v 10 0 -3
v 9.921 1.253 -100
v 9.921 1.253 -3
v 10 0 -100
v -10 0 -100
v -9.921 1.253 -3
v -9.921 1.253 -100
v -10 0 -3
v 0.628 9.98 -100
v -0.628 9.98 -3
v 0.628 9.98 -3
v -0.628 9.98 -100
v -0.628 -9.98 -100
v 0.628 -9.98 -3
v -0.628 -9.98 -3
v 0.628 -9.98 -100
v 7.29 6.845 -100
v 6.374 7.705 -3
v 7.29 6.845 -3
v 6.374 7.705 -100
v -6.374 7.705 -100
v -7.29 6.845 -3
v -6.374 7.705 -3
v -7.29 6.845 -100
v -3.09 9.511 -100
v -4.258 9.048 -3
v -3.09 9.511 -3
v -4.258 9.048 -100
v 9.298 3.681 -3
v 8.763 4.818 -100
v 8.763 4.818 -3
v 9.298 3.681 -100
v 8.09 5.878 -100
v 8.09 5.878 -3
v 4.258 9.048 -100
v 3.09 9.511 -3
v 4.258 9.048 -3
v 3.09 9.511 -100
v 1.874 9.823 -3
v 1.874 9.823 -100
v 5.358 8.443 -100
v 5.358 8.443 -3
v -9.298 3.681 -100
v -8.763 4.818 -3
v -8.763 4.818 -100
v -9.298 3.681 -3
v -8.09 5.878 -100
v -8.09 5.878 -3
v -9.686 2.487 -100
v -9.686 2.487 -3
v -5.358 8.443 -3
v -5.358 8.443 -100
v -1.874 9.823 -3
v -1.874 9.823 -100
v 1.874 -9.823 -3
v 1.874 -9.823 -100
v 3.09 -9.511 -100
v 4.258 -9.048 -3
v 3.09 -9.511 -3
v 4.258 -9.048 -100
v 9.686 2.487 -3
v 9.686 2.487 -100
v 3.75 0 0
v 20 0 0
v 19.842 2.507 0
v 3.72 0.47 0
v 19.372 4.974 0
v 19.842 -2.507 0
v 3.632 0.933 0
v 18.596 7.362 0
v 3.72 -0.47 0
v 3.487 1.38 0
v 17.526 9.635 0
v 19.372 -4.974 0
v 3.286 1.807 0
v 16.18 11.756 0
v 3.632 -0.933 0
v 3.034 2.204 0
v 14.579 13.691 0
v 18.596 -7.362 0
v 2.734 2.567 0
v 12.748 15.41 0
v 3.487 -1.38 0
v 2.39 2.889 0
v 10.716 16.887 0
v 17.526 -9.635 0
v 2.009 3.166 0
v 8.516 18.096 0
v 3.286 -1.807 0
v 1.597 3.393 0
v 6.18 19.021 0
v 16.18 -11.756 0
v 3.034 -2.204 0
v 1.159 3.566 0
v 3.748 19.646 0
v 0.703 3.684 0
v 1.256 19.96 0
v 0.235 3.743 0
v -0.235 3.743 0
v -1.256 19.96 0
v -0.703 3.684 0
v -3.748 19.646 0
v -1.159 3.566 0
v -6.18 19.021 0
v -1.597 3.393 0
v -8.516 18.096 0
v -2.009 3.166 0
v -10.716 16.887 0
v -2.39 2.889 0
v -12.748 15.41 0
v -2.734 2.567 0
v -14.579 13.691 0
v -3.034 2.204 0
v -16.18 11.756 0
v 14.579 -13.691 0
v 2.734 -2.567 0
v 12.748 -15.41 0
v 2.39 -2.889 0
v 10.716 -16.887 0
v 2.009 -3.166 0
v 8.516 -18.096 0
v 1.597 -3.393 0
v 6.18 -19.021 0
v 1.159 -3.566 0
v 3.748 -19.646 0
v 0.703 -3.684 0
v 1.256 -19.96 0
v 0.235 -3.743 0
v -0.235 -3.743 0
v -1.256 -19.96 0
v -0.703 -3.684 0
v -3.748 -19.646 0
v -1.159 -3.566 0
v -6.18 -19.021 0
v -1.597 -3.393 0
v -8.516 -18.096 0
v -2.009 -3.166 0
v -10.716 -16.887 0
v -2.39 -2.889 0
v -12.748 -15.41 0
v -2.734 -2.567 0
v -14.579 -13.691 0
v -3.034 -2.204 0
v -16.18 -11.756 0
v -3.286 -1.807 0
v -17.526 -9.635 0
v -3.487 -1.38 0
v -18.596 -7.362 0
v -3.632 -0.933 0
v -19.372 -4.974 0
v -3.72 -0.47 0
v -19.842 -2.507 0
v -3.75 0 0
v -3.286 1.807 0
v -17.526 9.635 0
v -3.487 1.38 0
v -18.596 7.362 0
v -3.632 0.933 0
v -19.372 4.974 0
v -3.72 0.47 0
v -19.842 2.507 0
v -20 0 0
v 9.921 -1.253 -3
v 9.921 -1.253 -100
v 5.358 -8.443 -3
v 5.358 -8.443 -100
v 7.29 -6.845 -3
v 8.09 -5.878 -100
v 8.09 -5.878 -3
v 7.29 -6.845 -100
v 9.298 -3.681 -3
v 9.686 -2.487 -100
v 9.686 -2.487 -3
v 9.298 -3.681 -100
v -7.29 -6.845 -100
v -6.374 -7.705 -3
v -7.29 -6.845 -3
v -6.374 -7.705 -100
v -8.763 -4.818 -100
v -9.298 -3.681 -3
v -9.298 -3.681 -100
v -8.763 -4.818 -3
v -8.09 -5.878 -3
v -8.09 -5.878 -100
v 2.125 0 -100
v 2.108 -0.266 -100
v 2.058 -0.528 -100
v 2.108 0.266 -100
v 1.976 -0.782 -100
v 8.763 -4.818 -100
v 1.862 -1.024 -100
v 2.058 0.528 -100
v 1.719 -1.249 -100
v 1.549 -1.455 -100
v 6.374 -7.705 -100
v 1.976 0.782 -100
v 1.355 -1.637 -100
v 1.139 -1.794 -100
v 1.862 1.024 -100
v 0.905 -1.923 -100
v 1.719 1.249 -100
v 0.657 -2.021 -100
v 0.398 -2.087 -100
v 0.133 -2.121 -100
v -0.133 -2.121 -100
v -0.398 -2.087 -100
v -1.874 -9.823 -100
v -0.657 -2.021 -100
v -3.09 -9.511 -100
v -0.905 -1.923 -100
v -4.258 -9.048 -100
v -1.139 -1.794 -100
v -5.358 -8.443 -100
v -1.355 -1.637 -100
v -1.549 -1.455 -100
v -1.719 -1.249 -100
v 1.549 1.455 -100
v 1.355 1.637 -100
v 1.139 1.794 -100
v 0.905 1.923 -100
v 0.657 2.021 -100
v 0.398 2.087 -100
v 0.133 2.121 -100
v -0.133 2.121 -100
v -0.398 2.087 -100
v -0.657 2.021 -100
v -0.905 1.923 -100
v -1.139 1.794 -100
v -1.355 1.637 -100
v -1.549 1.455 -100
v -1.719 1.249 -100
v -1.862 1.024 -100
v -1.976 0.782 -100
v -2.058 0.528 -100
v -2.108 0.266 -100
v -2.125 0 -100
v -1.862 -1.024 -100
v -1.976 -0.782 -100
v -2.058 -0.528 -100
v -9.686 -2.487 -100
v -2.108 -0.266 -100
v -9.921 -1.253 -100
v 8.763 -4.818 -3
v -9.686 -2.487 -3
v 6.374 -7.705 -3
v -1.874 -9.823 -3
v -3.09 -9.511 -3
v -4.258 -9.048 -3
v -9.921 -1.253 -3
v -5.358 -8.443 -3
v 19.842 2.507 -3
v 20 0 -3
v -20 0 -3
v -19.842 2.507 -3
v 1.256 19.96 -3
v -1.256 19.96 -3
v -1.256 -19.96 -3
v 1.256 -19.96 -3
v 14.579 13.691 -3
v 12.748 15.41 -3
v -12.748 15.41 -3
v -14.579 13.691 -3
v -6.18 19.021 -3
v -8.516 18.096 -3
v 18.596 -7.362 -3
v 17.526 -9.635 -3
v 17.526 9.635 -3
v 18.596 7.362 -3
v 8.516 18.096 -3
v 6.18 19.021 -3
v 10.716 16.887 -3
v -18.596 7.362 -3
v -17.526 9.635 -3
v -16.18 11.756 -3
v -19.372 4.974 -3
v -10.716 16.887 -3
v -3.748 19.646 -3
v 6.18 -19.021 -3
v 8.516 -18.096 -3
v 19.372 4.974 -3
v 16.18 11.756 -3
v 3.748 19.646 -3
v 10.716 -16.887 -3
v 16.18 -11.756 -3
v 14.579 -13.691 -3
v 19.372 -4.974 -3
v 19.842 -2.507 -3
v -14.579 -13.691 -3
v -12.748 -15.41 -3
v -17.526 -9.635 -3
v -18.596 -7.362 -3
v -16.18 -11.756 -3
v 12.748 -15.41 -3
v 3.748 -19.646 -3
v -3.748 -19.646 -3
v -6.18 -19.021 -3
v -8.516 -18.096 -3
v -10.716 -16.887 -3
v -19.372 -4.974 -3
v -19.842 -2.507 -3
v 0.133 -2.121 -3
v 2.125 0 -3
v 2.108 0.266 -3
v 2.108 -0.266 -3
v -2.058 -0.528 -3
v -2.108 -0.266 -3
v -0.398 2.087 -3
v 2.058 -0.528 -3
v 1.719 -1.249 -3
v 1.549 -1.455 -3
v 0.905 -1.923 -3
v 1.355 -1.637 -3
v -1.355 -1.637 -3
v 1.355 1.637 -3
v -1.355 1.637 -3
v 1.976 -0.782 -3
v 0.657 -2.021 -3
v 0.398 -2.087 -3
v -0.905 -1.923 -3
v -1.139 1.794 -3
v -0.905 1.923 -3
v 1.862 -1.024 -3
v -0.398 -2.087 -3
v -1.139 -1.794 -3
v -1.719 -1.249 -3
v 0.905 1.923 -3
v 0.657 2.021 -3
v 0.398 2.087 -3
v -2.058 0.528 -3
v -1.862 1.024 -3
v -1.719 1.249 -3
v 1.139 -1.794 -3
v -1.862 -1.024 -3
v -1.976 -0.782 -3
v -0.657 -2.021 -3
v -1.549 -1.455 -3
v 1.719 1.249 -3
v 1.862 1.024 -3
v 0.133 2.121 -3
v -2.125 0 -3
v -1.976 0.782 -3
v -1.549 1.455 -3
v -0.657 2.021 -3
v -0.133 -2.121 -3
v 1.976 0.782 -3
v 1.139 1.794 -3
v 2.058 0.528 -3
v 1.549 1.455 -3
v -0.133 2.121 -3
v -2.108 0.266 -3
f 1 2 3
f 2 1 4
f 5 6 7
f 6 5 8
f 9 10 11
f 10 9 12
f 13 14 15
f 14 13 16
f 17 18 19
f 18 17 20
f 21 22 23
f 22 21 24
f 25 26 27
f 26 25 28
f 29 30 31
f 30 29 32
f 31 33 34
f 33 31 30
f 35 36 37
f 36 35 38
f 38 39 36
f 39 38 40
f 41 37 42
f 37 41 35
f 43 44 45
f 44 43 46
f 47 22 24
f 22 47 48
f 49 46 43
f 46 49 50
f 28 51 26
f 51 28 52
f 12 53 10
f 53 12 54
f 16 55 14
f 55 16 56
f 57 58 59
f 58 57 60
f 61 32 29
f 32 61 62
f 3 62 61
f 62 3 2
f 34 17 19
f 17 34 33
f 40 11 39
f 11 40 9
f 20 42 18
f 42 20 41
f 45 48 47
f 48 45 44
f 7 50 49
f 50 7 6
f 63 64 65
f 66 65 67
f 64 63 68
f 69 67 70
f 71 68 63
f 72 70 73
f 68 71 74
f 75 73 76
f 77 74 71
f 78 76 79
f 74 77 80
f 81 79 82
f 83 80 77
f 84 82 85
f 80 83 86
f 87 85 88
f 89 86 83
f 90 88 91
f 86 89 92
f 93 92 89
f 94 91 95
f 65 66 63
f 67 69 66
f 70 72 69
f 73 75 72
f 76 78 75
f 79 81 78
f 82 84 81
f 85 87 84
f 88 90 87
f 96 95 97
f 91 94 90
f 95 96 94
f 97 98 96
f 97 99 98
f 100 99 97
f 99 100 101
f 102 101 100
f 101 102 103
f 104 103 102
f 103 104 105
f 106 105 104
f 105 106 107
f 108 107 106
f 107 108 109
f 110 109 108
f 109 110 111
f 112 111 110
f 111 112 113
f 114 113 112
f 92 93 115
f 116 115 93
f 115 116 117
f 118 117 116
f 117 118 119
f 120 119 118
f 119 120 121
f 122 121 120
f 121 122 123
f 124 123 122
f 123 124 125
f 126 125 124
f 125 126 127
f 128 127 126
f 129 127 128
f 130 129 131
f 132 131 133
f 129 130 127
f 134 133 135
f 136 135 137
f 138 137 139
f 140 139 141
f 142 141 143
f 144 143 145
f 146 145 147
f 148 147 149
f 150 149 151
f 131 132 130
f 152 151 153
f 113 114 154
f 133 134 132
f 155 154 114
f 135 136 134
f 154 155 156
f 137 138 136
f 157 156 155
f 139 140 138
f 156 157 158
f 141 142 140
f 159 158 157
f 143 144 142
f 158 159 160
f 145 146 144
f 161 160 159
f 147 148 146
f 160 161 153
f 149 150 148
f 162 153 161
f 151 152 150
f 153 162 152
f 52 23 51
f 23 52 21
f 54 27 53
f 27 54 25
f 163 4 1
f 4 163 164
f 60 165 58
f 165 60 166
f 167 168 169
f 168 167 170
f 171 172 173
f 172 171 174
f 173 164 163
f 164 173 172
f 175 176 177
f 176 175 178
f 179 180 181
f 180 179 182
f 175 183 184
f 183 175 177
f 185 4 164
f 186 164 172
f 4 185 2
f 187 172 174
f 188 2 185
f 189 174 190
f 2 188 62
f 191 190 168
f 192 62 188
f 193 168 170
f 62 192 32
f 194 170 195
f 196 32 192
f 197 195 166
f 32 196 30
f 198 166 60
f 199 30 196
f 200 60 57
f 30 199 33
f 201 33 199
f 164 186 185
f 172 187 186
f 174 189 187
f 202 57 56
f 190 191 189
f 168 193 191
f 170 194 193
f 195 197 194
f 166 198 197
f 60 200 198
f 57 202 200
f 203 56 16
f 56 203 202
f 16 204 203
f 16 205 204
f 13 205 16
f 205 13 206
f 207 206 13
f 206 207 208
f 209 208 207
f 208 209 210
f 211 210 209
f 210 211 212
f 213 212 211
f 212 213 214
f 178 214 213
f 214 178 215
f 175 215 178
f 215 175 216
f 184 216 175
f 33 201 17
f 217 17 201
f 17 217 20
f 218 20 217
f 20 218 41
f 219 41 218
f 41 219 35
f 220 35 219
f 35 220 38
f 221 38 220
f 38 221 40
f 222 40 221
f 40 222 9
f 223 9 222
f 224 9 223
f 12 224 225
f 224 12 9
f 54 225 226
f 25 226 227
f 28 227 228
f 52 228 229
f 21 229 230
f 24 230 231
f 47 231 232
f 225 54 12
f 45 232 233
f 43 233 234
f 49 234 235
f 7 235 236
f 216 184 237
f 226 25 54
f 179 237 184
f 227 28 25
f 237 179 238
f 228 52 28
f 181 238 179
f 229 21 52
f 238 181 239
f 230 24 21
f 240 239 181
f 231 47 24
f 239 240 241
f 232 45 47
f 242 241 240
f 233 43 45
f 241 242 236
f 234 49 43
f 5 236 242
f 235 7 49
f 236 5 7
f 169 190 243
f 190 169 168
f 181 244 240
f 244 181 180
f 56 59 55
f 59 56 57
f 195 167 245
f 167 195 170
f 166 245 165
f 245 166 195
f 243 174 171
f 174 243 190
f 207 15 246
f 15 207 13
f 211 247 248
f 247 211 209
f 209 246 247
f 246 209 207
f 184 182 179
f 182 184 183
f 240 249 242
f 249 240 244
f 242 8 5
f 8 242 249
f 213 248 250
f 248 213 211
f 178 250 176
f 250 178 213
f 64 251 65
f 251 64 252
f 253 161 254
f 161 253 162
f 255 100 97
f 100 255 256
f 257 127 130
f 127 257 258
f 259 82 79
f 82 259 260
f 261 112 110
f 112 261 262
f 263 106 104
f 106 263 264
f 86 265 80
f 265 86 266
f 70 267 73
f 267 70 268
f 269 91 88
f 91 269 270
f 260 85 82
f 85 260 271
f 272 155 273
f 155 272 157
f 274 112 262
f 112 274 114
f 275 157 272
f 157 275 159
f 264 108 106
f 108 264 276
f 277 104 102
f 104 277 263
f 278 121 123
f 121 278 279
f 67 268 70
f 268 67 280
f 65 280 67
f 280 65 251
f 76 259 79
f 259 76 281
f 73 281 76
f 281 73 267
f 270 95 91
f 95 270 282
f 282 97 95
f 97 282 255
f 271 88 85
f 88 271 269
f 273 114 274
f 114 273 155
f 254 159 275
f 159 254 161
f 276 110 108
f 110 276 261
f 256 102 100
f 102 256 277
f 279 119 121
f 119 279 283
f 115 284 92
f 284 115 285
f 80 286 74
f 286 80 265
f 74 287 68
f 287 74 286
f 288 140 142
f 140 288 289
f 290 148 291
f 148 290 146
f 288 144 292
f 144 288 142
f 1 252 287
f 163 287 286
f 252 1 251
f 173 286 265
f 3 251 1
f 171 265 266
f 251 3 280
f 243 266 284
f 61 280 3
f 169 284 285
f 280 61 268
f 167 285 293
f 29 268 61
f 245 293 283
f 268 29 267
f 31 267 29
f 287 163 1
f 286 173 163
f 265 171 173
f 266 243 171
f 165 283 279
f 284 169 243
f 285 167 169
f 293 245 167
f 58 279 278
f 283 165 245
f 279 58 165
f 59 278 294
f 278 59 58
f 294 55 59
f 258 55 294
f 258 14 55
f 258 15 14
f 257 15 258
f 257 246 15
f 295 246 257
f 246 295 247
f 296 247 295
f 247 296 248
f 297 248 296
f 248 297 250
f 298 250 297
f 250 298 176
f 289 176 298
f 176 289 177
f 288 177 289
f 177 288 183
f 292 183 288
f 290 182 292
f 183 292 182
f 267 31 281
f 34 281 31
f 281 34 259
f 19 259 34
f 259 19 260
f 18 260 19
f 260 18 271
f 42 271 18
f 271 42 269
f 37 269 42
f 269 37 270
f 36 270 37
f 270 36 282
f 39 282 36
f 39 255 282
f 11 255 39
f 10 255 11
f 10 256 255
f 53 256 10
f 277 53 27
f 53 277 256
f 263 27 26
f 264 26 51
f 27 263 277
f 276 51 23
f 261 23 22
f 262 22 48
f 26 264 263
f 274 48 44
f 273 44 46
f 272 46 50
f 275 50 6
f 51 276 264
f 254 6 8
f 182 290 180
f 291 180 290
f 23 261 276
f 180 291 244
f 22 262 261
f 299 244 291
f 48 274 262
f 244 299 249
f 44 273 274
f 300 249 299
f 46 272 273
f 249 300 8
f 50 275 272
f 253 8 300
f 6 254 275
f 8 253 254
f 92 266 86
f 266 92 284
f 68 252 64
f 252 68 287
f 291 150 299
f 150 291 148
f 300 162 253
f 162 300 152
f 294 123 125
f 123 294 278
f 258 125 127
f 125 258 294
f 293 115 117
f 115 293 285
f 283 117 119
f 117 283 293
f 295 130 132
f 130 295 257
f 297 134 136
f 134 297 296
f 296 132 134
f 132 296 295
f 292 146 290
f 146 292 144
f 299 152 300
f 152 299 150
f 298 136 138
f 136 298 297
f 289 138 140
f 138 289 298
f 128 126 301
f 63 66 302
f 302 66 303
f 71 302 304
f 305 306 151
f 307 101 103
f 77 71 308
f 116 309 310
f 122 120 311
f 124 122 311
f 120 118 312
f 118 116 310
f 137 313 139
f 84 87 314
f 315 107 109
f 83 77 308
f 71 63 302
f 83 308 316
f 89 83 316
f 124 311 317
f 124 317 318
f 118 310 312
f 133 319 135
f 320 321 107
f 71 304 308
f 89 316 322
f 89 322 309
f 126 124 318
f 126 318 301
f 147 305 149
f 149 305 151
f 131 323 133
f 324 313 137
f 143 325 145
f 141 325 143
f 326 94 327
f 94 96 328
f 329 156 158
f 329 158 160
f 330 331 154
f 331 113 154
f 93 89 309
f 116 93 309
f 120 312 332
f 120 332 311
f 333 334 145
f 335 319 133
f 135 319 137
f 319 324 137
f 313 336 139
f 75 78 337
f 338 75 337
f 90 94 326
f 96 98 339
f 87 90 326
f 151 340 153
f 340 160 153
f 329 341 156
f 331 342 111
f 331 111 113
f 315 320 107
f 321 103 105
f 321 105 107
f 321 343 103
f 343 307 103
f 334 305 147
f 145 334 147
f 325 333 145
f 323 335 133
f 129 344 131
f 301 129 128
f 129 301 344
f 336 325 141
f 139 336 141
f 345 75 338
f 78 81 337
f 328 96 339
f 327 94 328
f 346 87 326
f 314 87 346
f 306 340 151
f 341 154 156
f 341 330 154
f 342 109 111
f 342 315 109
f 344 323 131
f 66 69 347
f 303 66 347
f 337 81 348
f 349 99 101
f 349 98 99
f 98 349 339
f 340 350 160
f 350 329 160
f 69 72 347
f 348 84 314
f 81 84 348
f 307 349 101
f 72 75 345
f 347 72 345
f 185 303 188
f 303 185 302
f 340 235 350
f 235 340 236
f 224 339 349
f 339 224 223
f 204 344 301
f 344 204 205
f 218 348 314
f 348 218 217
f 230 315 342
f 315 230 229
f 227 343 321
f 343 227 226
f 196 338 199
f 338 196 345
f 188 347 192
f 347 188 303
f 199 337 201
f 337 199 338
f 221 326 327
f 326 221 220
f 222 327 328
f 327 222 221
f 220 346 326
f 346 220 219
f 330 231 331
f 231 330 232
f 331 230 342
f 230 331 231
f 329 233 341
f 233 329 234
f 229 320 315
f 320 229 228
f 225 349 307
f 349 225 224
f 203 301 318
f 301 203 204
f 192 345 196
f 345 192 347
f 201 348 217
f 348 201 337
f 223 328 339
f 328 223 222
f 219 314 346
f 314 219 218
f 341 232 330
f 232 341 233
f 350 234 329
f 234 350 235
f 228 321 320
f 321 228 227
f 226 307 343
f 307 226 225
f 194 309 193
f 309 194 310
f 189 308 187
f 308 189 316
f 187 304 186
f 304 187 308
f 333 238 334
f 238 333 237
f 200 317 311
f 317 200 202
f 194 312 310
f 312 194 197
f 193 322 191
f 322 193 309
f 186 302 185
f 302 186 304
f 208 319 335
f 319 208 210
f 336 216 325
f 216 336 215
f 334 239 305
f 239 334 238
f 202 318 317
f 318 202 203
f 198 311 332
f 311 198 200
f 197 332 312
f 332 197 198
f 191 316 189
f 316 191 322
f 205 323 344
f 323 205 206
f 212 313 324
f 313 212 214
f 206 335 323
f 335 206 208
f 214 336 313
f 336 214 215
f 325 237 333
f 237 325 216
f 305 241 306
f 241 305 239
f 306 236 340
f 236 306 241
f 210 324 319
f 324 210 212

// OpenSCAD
$fn = 50;


difference() {
	union() {
		translate(v = [0, 0, -100.0000000000]) {
			cylinder(h = 100, r = 10.0000000000);
		}
		translate(v = [0, 0, -3.0000000000]) {
			cylinder(h = 3, r = 20.0000000000);
		}
	}
	union() {
		translate(v = [0, 0, 0]) {
			rotate(a = [0, 0, 0]) {
				difference() {
					union() {
						#translate(v = [0, 0, -100.0000000000]) {
							cylinder(h = 100, r = 2.0000000000);
						}
						#translate(v = [0, 0, -3]) {
							cylinder(h = 3, r1 = 2.1250000000, r2 = 3.7500000000);
						}
						#translate(v = [0, 0, -100.0000000000]) {
							cylinder(h = 100, r = 2.1250000000);
						}
						#translate(v = [0, 0, -100.0000000000]) {
							cylinder(h = 100, r = 2.0000000000);
						}
					}
					union();
				}
			}
		}
	}
}
